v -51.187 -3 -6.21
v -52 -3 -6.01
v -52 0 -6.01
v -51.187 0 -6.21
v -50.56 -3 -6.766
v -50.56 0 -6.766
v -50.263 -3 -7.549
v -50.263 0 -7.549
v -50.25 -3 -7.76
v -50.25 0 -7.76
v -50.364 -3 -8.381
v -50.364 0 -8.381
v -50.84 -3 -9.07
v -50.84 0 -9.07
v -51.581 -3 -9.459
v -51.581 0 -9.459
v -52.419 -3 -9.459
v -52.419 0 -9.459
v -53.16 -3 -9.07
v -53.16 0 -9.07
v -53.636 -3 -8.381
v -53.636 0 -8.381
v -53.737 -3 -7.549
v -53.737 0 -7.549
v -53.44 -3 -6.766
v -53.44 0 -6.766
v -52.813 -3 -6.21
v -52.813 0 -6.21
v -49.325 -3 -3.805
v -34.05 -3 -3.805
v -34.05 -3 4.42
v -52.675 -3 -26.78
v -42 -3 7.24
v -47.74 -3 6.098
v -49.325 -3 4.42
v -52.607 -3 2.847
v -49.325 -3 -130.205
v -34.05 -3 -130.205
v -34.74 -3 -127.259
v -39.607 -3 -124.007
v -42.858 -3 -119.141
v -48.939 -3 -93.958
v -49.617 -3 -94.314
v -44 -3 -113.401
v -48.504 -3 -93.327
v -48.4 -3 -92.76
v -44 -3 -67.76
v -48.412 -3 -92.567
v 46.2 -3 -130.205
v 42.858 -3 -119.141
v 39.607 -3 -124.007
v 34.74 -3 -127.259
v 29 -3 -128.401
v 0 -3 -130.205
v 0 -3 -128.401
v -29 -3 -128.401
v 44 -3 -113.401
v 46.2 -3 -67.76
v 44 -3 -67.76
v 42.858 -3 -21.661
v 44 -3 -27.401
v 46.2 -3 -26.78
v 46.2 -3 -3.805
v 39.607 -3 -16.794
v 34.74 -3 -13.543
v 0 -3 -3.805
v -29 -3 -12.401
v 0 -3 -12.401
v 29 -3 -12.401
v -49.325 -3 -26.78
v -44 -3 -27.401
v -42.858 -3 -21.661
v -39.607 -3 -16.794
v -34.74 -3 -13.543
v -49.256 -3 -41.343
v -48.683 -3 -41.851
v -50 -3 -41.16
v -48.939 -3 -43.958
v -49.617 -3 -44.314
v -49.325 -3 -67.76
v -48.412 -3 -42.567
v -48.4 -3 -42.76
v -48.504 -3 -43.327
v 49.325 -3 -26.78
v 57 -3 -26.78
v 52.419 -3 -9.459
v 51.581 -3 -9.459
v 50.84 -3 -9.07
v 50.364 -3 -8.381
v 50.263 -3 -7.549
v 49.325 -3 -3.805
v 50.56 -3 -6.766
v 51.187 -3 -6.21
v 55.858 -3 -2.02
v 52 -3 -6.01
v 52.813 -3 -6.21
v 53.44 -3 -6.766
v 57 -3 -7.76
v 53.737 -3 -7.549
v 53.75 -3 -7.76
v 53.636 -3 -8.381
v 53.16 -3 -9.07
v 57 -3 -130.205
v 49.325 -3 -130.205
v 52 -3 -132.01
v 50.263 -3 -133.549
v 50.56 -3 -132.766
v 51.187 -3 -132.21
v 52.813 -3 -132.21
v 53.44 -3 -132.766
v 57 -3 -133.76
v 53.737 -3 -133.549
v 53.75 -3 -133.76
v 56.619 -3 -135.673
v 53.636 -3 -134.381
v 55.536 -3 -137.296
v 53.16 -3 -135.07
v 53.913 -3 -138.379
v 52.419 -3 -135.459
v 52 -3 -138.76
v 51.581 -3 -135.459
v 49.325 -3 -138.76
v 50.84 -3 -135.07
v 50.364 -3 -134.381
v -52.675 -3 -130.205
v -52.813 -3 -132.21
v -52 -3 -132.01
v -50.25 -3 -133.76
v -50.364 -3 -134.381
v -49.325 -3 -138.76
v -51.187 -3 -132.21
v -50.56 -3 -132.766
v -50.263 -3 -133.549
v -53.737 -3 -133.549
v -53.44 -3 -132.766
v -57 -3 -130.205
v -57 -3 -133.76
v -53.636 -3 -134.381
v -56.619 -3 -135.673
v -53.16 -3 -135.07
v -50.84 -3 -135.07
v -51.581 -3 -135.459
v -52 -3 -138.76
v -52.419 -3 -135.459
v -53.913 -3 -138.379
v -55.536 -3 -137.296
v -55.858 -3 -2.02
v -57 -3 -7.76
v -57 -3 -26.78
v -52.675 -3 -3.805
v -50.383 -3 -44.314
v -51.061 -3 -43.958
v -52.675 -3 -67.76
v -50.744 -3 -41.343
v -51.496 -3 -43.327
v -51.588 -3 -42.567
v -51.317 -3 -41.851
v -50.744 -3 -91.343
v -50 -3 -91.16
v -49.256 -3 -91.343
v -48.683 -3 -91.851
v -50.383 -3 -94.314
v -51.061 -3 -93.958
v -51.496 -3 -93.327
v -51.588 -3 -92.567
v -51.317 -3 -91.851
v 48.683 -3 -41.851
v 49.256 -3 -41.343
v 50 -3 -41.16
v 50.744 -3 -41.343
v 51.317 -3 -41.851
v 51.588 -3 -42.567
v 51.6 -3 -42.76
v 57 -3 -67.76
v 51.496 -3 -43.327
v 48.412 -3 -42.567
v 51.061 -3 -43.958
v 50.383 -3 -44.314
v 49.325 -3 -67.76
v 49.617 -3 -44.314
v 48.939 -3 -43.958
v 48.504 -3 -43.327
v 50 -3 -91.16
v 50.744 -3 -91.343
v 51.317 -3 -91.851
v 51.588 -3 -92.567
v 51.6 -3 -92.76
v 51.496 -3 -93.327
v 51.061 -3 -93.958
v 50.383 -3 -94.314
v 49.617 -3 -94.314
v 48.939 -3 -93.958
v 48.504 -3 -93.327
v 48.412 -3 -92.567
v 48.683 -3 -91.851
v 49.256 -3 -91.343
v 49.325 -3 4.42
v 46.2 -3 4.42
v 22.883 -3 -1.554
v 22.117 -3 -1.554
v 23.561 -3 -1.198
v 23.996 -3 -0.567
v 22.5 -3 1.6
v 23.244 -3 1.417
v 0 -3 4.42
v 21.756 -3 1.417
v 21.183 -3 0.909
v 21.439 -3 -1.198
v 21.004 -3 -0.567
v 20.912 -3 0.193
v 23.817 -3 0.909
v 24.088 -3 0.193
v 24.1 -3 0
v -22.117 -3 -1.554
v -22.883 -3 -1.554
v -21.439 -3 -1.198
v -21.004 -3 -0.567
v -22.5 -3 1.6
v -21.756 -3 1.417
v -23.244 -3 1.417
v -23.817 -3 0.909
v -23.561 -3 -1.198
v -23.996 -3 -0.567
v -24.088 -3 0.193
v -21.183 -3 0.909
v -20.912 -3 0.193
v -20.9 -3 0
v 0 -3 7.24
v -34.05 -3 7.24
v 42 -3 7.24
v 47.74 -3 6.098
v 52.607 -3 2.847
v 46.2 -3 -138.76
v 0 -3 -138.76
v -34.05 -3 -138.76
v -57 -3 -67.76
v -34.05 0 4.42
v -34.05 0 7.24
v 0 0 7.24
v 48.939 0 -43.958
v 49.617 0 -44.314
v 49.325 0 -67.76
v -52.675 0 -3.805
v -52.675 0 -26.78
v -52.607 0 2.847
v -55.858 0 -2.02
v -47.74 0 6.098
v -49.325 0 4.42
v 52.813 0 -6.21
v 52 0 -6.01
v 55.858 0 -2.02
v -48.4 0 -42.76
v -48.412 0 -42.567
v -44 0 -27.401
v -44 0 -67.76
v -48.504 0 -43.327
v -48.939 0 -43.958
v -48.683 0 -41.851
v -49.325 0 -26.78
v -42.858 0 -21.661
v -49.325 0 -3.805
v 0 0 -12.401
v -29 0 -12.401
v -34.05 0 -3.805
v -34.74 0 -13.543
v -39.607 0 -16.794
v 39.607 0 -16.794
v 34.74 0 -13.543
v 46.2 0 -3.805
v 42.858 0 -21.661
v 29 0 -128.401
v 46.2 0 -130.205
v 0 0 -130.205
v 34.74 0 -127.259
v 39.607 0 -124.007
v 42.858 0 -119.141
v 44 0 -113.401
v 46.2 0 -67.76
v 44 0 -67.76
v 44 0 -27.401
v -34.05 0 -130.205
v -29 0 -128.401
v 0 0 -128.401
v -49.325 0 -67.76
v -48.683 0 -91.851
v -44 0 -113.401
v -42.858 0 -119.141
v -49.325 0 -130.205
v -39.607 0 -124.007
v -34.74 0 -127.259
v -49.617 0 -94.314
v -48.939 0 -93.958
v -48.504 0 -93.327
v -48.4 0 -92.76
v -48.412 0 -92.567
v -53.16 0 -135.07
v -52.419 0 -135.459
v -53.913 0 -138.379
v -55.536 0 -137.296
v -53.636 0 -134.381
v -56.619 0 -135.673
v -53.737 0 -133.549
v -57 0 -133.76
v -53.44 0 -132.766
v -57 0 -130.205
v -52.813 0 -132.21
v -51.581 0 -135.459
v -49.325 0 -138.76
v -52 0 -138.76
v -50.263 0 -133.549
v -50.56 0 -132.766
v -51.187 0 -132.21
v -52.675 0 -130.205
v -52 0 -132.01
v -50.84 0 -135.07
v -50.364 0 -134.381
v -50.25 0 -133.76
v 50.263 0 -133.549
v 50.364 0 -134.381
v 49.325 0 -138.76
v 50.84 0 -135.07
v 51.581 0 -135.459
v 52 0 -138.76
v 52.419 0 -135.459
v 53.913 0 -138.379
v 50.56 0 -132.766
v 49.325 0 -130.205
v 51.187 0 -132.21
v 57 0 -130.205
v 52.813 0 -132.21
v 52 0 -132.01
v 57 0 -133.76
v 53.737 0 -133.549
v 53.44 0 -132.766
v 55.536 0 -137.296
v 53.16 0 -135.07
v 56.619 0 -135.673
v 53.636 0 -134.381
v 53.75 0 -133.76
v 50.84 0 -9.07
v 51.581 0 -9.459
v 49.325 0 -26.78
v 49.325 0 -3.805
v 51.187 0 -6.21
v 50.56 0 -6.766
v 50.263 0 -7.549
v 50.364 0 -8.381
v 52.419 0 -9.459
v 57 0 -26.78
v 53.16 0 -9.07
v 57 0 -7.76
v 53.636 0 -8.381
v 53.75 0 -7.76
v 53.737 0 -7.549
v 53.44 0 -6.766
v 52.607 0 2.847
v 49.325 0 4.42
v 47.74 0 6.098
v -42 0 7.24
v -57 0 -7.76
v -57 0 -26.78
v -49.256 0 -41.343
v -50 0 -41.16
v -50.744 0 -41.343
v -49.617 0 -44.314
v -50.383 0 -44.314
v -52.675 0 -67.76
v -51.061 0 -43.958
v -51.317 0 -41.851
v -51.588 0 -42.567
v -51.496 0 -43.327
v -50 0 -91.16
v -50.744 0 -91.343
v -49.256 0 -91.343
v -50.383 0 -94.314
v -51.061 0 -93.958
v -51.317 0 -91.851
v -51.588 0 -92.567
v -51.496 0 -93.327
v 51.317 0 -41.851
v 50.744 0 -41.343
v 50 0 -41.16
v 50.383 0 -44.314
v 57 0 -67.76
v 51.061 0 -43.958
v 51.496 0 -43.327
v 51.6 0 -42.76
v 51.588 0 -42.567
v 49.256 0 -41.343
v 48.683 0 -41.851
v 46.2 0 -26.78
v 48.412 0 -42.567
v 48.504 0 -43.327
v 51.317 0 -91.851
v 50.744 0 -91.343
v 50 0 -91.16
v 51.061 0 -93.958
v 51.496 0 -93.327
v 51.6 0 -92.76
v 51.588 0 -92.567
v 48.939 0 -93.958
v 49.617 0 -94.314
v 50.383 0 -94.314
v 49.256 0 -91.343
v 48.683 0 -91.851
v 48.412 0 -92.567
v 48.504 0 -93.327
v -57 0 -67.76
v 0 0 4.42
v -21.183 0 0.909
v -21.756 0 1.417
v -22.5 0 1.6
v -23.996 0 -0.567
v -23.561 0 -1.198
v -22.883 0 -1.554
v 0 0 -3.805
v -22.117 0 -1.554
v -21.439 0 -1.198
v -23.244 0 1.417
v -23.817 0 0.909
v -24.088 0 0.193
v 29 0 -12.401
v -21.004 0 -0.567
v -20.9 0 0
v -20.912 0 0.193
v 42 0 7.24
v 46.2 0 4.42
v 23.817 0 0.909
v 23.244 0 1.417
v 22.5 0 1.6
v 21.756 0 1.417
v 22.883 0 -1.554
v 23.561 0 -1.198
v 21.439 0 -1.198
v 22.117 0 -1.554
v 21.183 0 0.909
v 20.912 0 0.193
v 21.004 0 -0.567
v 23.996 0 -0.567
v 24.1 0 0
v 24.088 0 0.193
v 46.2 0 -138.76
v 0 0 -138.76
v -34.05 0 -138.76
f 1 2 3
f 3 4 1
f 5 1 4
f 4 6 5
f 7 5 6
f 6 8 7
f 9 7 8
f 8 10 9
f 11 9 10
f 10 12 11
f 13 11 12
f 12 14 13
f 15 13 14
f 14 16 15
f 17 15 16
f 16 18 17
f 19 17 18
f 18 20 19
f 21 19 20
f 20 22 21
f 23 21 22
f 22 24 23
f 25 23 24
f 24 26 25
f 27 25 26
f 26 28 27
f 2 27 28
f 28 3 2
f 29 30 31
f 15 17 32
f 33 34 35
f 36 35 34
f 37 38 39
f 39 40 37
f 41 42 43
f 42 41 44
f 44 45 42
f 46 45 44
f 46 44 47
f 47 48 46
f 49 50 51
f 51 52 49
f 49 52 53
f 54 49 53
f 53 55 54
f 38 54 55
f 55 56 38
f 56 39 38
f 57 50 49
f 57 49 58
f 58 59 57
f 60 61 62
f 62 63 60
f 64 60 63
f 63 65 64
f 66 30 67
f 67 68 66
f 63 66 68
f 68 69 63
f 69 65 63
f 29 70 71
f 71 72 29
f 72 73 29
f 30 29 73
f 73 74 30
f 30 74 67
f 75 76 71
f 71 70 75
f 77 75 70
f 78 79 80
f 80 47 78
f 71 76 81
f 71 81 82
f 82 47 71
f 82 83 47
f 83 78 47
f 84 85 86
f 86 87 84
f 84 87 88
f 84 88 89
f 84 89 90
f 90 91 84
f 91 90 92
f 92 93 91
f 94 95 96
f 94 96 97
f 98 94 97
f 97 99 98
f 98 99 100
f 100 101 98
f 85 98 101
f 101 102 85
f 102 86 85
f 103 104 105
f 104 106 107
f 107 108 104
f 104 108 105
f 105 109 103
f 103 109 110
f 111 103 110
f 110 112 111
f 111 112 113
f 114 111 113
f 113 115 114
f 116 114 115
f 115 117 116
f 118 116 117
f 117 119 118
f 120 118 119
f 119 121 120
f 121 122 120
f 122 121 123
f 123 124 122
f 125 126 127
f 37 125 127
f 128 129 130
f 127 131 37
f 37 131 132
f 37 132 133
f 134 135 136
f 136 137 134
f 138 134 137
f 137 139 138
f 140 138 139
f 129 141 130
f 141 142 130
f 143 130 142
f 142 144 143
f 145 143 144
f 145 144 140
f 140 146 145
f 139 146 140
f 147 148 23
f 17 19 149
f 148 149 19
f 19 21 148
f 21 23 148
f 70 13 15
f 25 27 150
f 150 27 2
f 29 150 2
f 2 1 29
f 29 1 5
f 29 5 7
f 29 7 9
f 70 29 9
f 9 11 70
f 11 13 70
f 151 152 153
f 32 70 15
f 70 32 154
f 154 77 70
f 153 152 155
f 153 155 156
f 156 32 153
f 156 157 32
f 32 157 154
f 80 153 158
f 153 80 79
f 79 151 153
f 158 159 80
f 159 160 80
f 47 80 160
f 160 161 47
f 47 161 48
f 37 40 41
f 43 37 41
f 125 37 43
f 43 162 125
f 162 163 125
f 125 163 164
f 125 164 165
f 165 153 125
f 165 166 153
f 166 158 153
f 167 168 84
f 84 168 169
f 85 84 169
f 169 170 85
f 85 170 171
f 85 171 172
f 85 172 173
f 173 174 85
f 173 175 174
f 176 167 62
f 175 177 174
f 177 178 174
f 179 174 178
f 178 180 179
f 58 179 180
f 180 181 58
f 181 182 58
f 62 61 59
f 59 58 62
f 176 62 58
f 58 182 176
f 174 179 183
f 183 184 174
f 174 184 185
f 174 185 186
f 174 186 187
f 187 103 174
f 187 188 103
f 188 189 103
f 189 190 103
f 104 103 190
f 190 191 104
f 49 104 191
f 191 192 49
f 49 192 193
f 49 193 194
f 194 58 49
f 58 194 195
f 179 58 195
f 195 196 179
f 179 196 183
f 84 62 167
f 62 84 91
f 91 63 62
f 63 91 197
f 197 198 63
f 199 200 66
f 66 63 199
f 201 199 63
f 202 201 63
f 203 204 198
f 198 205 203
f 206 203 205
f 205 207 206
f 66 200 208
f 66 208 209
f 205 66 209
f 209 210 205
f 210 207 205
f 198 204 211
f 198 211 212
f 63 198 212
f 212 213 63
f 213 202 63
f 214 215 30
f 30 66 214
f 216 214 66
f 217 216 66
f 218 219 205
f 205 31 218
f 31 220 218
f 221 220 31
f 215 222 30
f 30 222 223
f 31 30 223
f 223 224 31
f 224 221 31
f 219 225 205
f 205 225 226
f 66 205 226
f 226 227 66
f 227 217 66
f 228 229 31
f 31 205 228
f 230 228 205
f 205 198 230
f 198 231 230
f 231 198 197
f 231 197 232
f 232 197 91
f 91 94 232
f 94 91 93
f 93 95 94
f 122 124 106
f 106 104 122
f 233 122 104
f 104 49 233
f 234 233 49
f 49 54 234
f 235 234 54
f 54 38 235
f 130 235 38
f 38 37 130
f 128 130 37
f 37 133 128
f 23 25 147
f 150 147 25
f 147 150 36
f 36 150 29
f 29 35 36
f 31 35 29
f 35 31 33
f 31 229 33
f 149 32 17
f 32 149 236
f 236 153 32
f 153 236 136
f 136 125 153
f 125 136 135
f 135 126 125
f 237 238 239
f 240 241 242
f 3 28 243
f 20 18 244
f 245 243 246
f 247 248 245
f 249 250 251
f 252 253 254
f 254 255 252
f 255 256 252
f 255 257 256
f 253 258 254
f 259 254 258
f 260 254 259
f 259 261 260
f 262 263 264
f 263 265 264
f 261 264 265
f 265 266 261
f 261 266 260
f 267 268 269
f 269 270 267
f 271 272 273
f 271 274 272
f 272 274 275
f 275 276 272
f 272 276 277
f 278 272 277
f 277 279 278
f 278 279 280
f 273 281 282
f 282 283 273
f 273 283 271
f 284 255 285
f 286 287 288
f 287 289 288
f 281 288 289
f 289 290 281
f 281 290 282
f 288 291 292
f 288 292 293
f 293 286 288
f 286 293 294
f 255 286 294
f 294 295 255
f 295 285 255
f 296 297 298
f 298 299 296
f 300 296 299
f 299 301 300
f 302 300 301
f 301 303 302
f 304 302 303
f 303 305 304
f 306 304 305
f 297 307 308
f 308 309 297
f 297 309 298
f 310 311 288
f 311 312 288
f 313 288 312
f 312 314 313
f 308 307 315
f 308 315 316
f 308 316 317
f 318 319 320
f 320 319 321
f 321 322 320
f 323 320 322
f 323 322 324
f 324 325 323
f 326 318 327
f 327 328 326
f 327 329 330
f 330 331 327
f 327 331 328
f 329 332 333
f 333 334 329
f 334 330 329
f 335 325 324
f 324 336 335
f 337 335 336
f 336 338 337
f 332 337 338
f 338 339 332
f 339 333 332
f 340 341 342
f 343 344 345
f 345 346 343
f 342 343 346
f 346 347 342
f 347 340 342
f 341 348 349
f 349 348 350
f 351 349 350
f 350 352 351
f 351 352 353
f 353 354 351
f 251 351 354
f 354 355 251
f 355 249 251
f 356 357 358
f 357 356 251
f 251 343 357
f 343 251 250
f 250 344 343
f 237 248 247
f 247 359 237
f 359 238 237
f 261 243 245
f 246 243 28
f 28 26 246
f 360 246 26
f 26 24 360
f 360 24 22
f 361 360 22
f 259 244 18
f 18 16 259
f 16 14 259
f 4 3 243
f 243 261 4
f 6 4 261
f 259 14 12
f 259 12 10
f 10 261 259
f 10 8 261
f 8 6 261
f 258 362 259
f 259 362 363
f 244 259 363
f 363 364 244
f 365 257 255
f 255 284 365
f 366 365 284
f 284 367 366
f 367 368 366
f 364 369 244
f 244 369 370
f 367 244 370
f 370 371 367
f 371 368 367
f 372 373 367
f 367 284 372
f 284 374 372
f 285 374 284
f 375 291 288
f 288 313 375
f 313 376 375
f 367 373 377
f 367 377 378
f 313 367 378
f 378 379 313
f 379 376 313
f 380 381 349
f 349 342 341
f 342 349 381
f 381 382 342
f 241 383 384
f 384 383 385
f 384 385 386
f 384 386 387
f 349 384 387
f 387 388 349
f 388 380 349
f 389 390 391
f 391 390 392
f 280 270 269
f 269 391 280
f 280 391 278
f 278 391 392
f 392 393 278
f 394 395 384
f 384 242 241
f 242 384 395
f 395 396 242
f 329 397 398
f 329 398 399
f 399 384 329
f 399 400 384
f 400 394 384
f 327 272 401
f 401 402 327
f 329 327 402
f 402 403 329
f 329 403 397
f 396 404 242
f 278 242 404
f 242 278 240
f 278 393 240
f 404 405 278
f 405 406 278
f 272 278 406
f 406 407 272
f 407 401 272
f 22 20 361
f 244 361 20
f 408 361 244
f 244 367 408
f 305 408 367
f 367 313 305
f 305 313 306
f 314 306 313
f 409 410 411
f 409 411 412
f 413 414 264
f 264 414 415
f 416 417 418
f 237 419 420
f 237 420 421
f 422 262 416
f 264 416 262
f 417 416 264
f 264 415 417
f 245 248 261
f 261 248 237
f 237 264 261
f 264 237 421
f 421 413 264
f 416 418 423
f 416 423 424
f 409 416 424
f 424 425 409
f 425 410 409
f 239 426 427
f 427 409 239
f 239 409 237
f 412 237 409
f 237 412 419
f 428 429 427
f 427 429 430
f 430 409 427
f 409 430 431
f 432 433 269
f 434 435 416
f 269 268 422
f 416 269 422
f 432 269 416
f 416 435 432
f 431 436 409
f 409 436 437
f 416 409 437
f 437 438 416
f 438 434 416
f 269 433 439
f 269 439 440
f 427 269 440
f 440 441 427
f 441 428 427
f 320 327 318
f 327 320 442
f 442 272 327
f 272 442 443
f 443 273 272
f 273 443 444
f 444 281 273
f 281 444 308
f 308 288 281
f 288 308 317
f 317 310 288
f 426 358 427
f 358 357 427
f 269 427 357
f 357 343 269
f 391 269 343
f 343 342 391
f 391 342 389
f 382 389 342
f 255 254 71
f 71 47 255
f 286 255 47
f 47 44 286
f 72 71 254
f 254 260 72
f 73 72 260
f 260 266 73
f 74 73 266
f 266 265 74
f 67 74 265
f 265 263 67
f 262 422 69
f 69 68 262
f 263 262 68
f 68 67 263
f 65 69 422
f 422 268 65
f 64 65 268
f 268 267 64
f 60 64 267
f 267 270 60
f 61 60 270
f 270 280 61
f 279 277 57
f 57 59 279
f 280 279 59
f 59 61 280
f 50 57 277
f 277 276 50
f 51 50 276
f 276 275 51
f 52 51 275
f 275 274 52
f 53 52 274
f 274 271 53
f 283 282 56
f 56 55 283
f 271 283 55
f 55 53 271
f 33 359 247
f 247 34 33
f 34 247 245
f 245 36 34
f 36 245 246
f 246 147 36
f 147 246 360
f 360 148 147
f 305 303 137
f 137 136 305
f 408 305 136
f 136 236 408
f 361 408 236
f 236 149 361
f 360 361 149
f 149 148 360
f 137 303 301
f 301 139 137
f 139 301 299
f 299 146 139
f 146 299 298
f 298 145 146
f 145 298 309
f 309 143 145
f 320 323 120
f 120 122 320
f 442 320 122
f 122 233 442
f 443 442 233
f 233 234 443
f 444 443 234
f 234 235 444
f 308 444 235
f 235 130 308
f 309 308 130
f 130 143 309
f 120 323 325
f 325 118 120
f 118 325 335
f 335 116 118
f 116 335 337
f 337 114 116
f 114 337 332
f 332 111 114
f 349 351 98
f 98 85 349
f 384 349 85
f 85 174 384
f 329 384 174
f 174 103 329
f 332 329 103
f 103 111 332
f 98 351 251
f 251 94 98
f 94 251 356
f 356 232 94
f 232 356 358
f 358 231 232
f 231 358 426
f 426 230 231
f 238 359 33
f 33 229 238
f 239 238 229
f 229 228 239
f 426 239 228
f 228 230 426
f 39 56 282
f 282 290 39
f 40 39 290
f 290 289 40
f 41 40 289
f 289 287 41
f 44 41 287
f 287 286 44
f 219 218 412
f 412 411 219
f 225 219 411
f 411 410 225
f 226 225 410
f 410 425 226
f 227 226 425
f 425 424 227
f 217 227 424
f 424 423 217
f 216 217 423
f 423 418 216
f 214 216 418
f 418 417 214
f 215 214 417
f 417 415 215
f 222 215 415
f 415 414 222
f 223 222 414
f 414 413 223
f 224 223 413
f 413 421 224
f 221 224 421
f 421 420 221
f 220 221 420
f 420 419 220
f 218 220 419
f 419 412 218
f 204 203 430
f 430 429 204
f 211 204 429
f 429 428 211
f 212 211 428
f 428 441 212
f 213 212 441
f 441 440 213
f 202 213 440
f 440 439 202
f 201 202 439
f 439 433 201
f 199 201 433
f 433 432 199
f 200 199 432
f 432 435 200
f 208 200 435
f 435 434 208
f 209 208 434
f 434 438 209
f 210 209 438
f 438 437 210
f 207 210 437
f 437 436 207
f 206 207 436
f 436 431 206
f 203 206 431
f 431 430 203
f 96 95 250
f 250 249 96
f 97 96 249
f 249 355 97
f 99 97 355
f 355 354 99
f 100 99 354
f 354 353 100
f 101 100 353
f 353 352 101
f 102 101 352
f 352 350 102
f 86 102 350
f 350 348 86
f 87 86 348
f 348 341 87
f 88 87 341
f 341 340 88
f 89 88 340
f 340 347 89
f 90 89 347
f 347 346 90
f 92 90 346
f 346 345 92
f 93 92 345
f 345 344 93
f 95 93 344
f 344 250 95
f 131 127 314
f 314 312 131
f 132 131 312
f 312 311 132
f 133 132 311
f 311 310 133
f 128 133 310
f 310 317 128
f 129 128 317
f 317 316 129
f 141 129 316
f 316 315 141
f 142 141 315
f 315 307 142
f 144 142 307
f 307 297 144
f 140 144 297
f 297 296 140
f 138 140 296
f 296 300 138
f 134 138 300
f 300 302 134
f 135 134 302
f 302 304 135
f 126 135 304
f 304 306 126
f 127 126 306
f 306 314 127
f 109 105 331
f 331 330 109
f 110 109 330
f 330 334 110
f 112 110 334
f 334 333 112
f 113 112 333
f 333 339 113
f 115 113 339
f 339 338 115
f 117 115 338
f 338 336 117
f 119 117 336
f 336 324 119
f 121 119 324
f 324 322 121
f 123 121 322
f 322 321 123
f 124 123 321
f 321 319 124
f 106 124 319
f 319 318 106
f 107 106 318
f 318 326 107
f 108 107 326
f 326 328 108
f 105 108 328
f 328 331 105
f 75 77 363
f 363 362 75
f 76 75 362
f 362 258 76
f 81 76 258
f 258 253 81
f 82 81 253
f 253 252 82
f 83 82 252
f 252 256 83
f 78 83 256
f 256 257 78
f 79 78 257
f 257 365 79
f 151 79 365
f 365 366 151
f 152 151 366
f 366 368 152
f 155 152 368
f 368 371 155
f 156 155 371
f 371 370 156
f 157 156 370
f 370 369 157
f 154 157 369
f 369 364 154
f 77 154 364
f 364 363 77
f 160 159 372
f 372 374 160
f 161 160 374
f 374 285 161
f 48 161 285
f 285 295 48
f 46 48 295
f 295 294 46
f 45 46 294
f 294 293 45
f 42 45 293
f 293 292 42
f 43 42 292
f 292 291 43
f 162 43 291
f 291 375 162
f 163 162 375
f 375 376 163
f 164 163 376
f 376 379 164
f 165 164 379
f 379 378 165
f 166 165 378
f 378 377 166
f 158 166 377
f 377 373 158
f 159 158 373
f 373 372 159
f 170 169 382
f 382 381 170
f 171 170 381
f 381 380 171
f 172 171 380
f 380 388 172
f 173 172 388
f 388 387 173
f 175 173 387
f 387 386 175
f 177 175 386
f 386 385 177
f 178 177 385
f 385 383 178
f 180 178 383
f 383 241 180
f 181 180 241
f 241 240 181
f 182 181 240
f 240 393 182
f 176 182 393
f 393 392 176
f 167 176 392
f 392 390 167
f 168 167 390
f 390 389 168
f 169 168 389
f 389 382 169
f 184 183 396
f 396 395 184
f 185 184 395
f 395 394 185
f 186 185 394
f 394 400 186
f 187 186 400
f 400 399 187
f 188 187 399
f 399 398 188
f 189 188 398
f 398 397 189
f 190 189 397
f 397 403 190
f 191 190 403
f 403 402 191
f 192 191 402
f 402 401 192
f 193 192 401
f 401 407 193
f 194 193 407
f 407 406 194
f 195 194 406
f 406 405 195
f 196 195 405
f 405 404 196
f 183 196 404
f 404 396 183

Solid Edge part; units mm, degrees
sketch "Sketch1" plane through (0, 0, 0) normal (0, -1, 0) x (1, 0, 0)
  line L0 (-57, -7.76) -> (-57, -133.76)
  arc A0 (-52, -138.76) -> (-57, -133.76) centre (-52, -133.76) cw
  line L1 (-52, -138.76) -> (52, -138.76)
  arc A1 (57, -133.76) -> (52, -138.76) centre (52, -133.76) cw
  line L2 (57, -133.76) -> (57, -7.76)
  arc A2 (42, 7.24) -> (57, -7.76) centre (42, -7.76) cw
  line L3 (42, 7.24) -> (-42, 7.24)
  arc A3 (-42, 7.24) -> (-57, -7.76) centre (-42, -7.76) ccw
  circle A4 centre (-52, -7.76) radius 1.75
  circle A5 centre (-22.5, 0) radius 1.6
  circle A6 centre (22.5, 0) radius 1.6
  circle A7 centre (52, -7.76) radius 1.75
  circle A8 centre (-52, -133.76) radius 1.75
  circle A9 centre (52, -133.76) radius 1.75
  line L4 (-29, -12.4008) -> (29, -12.4008)
  arc A10 (29, -12.4008) -> (44, -27.4008) centre (29, -27.4008) cw
  line L5 (44, -27.4008) -> (44, -113.4008)
  arc A11 (44, -113.4008) -> (29, -128.4008) centre (29, -113.4008) cw
  line L6 (29, -128.4008) -> (-29, -128.4008)
  arc A12 (-29, -128.4008) -> (-44, -113.4008) centre (-29, -113.4008) cw
  line L7 (-44, -113.4008) -> (-44, -27.4008)
  arc A13 (-29, -12.4008) -> (-44, -27.4008) centre (-29, -27.4008) ccw
  circle A14 centre (-50, -42.76) radius 1.6
  circle A15 centre (-50, -92.76) radius 1.6
  circle A16 centre (50, -42.76) radius 1.6
  circle A17 centre (50, -92.76) radius 1.6
  dimension "D1" = 3.2
  dimension "D2" = 7.76
  dimension "D3" = 126
  dimension "D4" = 126
  dimension "D5" = 5
  dimension "D6" = 52
  dimension "D7" = 52
  dimension "D8" = 45
  dimension "D9" = 22.5
  dimension "D10" = 104
  dimension "D11" = 15
  dimension "D12" = 15
  dimension "D13" = 5
  dimension "D14" = 5
  dimension "D15" = 5
  dimension "D16" = 15
  dimension "D17" = 15
  dimension "D18" = 15
  dimension "D19" = 15
  dimension "D20" = 88
  dimension "D21" = 116
  dimension "D22" = 10.3592
  dimension "D23" = 44
  dimension "D24" = 3.2
  dimension "D25" = 50
  dimension "D26" = 50
  dimension "D27" = 50
  dimension "D28" = 50
extrude "Protrusion1" add sketch "Sketch1" along normal blind 3
properties material "ABS Plastic, medium impact"
